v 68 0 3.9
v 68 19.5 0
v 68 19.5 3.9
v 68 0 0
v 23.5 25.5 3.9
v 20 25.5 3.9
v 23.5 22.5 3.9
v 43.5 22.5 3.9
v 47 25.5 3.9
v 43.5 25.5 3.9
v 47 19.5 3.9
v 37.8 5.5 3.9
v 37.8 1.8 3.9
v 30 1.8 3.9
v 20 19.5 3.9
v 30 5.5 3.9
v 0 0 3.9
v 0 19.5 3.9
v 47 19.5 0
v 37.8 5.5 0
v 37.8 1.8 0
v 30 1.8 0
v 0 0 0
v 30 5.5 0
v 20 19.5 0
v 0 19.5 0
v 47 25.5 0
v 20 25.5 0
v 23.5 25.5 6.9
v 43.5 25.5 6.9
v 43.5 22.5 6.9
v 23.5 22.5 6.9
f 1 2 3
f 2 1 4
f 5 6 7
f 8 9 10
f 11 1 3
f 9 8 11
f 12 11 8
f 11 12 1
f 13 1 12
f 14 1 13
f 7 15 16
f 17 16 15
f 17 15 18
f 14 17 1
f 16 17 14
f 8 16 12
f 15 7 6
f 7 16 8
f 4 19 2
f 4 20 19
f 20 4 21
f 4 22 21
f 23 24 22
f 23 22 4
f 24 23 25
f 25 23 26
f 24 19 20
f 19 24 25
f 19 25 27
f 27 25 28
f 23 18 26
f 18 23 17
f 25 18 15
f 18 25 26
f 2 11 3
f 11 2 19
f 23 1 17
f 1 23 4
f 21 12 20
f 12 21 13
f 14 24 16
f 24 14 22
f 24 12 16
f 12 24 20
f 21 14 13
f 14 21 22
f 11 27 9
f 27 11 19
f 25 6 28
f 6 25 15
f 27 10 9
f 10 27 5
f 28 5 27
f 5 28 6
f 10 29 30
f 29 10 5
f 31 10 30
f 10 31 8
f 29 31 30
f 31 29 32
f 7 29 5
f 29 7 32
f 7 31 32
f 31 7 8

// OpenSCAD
difference() {
    cube([68,19.5,3.9]);
    translate([30,1.8,0])
        cube([7.8,3.7,3.9]);
}
translate([20,19.5,0]) {
    cube([27,6,3.9]);
    translate([3.5,3,3.9]) {
        cube([20,3,3]);
    }
}
